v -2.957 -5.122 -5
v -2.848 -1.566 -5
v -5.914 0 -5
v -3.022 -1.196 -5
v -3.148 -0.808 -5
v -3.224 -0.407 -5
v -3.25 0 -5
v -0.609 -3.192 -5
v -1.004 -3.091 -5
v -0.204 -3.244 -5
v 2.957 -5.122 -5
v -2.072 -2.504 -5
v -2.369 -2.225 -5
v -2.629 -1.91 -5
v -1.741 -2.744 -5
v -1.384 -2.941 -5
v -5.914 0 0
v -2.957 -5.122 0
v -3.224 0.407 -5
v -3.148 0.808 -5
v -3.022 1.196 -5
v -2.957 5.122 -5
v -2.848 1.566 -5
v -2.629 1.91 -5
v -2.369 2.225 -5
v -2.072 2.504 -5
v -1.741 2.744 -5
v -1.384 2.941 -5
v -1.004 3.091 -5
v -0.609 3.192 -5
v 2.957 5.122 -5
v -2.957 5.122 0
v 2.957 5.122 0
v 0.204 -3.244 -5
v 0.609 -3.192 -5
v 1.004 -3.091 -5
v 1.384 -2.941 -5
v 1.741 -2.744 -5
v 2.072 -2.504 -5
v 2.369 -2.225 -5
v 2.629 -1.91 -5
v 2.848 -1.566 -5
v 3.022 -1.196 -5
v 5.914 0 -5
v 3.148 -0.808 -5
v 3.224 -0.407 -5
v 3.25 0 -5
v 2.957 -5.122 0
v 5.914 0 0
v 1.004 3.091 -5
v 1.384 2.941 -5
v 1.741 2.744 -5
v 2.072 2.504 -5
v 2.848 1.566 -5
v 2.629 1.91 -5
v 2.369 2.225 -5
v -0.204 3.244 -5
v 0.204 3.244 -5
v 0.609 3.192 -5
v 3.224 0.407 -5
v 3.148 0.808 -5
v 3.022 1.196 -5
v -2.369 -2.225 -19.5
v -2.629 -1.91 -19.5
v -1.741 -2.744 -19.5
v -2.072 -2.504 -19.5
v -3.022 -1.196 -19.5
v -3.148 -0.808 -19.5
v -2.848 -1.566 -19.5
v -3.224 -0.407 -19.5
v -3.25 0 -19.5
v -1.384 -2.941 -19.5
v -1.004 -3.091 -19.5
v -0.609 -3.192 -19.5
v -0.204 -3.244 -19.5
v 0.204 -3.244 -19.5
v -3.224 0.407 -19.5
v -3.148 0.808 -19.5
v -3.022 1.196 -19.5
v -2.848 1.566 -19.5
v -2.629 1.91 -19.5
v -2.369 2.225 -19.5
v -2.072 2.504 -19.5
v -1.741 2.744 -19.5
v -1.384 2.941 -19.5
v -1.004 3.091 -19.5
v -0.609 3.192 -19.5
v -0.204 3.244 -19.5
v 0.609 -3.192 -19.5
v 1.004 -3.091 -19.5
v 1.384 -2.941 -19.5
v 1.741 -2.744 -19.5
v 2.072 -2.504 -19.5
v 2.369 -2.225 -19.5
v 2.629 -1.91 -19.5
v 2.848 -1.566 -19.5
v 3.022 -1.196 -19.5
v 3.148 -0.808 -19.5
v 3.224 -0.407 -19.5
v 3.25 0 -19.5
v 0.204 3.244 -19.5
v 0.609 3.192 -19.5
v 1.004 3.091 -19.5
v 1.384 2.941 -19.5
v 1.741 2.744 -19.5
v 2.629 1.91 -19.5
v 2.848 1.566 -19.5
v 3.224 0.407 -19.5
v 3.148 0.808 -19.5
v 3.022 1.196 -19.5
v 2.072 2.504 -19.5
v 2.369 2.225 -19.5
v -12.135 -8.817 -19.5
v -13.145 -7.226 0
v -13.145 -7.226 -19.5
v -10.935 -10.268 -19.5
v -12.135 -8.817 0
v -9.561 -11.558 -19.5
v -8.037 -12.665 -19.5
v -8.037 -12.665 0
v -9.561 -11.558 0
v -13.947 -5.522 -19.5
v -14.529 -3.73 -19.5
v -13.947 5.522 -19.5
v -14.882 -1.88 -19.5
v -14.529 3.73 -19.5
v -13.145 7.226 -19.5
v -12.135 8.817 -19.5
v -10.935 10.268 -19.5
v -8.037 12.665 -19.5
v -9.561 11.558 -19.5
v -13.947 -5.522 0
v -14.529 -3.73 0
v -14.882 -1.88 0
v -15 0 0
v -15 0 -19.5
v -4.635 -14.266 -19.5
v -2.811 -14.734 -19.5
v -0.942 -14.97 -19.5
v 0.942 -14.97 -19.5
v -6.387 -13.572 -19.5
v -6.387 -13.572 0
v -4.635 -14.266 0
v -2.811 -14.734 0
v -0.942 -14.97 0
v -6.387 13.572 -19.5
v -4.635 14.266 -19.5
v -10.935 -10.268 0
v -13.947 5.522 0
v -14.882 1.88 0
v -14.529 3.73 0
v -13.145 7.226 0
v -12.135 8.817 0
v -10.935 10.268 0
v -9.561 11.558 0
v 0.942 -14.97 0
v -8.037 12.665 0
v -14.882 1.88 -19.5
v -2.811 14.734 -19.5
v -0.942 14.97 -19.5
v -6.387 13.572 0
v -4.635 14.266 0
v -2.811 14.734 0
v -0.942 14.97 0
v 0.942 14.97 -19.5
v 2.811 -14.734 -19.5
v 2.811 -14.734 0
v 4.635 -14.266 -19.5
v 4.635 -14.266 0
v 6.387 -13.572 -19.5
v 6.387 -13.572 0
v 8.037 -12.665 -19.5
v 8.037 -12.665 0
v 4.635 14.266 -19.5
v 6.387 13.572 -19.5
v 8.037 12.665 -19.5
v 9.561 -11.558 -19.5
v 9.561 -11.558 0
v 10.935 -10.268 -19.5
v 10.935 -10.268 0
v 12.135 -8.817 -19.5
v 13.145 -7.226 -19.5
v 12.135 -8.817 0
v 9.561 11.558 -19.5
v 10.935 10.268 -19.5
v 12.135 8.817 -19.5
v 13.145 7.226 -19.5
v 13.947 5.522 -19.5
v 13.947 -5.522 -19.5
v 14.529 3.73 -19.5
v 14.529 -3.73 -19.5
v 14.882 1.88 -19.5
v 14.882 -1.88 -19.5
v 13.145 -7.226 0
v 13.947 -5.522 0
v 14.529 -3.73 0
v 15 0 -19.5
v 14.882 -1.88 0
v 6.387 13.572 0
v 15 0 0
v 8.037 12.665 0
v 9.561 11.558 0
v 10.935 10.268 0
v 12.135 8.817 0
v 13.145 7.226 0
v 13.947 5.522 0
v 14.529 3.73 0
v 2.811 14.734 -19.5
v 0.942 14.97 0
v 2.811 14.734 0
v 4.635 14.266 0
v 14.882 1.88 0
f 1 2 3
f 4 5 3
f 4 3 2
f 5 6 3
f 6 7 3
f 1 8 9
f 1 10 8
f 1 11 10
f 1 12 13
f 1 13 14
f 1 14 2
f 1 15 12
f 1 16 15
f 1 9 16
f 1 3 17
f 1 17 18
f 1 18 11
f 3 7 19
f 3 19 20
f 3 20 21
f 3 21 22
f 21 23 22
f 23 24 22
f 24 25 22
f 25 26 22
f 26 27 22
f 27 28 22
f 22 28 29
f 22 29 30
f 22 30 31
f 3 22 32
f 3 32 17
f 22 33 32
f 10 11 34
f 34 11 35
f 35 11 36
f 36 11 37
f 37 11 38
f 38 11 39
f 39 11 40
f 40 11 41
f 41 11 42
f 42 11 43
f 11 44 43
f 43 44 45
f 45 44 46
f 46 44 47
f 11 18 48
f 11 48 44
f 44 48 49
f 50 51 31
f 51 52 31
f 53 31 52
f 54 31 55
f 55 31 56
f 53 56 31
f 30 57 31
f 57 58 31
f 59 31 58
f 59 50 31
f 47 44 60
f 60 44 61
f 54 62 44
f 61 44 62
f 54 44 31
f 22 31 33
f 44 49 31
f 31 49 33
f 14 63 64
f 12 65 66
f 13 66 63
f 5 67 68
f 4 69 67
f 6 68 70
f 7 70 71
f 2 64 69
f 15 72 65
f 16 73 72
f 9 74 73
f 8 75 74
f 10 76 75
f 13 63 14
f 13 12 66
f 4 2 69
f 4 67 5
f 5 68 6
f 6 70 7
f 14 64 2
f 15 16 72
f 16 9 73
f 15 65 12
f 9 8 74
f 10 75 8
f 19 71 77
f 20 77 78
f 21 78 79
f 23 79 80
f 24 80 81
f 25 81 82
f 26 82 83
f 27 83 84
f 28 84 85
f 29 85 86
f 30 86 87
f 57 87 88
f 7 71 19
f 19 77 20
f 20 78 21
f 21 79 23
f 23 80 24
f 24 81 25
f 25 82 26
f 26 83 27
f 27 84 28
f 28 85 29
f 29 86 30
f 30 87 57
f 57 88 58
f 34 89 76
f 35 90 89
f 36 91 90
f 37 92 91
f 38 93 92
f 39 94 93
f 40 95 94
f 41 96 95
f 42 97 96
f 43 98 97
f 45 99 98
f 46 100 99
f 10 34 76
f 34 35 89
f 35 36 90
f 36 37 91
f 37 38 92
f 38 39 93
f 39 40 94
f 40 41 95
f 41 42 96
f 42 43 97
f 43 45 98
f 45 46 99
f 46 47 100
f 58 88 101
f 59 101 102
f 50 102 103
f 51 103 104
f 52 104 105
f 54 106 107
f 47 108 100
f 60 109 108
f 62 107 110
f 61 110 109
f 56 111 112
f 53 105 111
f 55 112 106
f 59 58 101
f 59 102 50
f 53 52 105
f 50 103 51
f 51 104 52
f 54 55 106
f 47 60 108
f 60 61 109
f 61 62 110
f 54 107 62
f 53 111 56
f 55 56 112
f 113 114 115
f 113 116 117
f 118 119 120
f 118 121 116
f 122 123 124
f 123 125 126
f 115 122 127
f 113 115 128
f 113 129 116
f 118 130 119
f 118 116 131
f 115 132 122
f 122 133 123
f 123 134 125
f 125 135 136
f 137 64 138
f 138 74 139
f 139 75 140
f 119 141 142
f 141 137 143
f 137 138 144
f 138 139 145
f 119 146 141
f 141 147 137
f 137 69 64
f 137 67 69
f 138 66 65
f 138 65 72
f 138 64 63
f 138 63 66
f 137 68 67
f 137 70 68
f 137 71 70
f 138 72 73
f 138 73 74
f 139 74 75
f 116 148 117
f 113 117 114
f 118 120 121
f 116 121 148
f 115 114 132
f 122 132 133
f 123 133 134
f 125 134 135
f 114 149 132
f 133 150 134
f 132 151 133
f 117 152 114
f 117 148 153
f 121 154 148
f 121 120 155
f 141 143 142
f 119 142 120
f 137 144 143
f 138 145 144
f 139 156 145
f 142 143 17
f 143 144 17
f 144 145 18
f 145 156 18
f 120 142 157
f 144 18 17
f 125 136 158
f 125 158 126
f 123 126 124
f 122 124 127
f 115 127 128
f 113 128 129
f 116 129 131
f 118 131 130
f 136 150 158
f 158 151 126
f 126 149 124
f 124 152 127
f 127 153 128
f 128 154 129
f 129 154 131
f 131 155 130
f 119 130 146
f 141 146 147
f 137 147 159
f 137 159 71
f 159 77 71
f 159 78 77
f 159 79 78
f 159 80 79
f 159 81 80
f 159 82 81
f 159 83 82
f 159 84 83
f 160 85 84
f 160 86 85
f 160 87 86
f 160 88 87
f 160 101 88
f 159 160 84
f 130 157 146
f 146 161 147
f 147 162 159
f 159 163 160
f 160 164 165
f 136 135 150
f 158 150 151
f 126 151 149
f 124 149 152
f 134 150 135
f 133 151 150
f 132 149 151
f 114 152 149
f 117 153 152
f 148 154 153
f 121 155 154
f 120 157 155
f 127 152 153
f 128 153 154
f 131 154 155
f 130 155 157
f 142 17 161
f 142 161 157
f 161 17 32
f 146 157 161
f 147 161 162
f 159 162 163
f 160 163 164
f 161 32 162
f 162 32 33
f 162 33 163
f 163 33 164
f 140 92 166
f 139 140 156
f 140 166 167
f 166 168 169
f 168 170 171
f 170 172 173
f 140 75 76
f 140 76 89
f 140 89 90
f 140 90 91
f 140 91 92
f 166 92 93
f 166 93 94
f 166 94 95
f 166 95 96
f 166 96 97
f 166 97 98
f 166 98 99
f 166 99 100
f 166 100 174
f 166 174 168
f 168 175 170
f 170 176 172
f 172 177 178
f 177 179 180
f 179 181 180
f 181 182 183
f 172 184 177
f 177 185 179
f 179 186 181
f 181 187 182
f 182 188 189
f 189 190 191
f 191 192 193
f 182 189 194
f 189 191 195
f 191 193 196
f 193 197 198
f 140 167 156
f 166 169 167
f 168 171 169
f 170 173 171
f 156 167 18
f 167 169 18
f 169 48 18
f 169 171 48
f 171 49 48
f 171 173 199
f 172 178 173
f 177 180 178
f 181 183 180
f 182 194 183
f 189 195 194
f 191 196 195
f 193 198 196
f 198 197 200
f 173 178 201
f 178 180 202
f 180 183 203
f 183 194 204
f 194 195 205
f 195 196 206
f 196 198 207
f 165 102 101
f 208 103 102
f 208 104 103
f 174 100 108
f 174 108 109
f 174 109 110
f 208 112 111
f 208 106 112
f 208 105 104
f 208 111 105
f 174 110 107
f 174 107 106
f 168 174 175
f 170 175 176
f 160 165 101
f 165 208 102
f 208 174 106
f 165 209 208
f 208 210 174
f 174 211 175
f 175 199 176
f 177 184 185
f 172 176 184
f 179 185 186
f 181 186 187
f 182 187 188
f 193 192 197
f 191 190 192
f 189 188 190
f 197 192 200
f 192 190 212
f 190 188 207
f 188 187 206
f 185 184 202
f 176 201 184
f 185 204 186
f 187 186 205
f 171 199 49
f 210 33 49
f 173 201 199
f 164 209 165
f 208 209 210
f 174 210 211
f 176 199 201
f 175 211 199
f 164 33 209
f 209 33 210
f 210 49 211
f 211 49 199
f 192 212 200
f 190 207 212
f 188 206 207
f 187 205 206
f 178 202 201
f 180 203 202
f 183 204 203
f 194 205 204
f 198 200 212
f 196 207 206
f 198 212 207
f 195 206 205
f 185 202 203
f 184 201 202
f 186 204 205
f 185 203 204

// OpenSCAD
$fn = 50;


difference() {
	union() {
		translate(v = [0, 0, -19.5000000000]) {
			cylinder(h = 19.5000000000, r = 15.0000000000);
		}
	}
	union() {
		translate(v = [0, 0, 0]) {
			rotate(a = [0, 0, 0]) {
				difference() {
					union() {
						translate(v = [0, 0, -5]) {
							linear_extrude(height = 5) {
								polygon(points = [[5.9142500000, 0.0000000000], [2.9571250000, 5.1218907443], [-2.9571250000, 5.1218907443], [-5.9142500000, 0.0000000000], [-2.9571250000, -5.1218907443], [2.9571250000, -5.1218907443]]);
							}
						}
					}
					union();
				}
			}
		}
		#translate(v = [0, 0, -100.0000000000]) {
			cylinder(h = 200, r = 3.2500000000);
		}
	}
}
